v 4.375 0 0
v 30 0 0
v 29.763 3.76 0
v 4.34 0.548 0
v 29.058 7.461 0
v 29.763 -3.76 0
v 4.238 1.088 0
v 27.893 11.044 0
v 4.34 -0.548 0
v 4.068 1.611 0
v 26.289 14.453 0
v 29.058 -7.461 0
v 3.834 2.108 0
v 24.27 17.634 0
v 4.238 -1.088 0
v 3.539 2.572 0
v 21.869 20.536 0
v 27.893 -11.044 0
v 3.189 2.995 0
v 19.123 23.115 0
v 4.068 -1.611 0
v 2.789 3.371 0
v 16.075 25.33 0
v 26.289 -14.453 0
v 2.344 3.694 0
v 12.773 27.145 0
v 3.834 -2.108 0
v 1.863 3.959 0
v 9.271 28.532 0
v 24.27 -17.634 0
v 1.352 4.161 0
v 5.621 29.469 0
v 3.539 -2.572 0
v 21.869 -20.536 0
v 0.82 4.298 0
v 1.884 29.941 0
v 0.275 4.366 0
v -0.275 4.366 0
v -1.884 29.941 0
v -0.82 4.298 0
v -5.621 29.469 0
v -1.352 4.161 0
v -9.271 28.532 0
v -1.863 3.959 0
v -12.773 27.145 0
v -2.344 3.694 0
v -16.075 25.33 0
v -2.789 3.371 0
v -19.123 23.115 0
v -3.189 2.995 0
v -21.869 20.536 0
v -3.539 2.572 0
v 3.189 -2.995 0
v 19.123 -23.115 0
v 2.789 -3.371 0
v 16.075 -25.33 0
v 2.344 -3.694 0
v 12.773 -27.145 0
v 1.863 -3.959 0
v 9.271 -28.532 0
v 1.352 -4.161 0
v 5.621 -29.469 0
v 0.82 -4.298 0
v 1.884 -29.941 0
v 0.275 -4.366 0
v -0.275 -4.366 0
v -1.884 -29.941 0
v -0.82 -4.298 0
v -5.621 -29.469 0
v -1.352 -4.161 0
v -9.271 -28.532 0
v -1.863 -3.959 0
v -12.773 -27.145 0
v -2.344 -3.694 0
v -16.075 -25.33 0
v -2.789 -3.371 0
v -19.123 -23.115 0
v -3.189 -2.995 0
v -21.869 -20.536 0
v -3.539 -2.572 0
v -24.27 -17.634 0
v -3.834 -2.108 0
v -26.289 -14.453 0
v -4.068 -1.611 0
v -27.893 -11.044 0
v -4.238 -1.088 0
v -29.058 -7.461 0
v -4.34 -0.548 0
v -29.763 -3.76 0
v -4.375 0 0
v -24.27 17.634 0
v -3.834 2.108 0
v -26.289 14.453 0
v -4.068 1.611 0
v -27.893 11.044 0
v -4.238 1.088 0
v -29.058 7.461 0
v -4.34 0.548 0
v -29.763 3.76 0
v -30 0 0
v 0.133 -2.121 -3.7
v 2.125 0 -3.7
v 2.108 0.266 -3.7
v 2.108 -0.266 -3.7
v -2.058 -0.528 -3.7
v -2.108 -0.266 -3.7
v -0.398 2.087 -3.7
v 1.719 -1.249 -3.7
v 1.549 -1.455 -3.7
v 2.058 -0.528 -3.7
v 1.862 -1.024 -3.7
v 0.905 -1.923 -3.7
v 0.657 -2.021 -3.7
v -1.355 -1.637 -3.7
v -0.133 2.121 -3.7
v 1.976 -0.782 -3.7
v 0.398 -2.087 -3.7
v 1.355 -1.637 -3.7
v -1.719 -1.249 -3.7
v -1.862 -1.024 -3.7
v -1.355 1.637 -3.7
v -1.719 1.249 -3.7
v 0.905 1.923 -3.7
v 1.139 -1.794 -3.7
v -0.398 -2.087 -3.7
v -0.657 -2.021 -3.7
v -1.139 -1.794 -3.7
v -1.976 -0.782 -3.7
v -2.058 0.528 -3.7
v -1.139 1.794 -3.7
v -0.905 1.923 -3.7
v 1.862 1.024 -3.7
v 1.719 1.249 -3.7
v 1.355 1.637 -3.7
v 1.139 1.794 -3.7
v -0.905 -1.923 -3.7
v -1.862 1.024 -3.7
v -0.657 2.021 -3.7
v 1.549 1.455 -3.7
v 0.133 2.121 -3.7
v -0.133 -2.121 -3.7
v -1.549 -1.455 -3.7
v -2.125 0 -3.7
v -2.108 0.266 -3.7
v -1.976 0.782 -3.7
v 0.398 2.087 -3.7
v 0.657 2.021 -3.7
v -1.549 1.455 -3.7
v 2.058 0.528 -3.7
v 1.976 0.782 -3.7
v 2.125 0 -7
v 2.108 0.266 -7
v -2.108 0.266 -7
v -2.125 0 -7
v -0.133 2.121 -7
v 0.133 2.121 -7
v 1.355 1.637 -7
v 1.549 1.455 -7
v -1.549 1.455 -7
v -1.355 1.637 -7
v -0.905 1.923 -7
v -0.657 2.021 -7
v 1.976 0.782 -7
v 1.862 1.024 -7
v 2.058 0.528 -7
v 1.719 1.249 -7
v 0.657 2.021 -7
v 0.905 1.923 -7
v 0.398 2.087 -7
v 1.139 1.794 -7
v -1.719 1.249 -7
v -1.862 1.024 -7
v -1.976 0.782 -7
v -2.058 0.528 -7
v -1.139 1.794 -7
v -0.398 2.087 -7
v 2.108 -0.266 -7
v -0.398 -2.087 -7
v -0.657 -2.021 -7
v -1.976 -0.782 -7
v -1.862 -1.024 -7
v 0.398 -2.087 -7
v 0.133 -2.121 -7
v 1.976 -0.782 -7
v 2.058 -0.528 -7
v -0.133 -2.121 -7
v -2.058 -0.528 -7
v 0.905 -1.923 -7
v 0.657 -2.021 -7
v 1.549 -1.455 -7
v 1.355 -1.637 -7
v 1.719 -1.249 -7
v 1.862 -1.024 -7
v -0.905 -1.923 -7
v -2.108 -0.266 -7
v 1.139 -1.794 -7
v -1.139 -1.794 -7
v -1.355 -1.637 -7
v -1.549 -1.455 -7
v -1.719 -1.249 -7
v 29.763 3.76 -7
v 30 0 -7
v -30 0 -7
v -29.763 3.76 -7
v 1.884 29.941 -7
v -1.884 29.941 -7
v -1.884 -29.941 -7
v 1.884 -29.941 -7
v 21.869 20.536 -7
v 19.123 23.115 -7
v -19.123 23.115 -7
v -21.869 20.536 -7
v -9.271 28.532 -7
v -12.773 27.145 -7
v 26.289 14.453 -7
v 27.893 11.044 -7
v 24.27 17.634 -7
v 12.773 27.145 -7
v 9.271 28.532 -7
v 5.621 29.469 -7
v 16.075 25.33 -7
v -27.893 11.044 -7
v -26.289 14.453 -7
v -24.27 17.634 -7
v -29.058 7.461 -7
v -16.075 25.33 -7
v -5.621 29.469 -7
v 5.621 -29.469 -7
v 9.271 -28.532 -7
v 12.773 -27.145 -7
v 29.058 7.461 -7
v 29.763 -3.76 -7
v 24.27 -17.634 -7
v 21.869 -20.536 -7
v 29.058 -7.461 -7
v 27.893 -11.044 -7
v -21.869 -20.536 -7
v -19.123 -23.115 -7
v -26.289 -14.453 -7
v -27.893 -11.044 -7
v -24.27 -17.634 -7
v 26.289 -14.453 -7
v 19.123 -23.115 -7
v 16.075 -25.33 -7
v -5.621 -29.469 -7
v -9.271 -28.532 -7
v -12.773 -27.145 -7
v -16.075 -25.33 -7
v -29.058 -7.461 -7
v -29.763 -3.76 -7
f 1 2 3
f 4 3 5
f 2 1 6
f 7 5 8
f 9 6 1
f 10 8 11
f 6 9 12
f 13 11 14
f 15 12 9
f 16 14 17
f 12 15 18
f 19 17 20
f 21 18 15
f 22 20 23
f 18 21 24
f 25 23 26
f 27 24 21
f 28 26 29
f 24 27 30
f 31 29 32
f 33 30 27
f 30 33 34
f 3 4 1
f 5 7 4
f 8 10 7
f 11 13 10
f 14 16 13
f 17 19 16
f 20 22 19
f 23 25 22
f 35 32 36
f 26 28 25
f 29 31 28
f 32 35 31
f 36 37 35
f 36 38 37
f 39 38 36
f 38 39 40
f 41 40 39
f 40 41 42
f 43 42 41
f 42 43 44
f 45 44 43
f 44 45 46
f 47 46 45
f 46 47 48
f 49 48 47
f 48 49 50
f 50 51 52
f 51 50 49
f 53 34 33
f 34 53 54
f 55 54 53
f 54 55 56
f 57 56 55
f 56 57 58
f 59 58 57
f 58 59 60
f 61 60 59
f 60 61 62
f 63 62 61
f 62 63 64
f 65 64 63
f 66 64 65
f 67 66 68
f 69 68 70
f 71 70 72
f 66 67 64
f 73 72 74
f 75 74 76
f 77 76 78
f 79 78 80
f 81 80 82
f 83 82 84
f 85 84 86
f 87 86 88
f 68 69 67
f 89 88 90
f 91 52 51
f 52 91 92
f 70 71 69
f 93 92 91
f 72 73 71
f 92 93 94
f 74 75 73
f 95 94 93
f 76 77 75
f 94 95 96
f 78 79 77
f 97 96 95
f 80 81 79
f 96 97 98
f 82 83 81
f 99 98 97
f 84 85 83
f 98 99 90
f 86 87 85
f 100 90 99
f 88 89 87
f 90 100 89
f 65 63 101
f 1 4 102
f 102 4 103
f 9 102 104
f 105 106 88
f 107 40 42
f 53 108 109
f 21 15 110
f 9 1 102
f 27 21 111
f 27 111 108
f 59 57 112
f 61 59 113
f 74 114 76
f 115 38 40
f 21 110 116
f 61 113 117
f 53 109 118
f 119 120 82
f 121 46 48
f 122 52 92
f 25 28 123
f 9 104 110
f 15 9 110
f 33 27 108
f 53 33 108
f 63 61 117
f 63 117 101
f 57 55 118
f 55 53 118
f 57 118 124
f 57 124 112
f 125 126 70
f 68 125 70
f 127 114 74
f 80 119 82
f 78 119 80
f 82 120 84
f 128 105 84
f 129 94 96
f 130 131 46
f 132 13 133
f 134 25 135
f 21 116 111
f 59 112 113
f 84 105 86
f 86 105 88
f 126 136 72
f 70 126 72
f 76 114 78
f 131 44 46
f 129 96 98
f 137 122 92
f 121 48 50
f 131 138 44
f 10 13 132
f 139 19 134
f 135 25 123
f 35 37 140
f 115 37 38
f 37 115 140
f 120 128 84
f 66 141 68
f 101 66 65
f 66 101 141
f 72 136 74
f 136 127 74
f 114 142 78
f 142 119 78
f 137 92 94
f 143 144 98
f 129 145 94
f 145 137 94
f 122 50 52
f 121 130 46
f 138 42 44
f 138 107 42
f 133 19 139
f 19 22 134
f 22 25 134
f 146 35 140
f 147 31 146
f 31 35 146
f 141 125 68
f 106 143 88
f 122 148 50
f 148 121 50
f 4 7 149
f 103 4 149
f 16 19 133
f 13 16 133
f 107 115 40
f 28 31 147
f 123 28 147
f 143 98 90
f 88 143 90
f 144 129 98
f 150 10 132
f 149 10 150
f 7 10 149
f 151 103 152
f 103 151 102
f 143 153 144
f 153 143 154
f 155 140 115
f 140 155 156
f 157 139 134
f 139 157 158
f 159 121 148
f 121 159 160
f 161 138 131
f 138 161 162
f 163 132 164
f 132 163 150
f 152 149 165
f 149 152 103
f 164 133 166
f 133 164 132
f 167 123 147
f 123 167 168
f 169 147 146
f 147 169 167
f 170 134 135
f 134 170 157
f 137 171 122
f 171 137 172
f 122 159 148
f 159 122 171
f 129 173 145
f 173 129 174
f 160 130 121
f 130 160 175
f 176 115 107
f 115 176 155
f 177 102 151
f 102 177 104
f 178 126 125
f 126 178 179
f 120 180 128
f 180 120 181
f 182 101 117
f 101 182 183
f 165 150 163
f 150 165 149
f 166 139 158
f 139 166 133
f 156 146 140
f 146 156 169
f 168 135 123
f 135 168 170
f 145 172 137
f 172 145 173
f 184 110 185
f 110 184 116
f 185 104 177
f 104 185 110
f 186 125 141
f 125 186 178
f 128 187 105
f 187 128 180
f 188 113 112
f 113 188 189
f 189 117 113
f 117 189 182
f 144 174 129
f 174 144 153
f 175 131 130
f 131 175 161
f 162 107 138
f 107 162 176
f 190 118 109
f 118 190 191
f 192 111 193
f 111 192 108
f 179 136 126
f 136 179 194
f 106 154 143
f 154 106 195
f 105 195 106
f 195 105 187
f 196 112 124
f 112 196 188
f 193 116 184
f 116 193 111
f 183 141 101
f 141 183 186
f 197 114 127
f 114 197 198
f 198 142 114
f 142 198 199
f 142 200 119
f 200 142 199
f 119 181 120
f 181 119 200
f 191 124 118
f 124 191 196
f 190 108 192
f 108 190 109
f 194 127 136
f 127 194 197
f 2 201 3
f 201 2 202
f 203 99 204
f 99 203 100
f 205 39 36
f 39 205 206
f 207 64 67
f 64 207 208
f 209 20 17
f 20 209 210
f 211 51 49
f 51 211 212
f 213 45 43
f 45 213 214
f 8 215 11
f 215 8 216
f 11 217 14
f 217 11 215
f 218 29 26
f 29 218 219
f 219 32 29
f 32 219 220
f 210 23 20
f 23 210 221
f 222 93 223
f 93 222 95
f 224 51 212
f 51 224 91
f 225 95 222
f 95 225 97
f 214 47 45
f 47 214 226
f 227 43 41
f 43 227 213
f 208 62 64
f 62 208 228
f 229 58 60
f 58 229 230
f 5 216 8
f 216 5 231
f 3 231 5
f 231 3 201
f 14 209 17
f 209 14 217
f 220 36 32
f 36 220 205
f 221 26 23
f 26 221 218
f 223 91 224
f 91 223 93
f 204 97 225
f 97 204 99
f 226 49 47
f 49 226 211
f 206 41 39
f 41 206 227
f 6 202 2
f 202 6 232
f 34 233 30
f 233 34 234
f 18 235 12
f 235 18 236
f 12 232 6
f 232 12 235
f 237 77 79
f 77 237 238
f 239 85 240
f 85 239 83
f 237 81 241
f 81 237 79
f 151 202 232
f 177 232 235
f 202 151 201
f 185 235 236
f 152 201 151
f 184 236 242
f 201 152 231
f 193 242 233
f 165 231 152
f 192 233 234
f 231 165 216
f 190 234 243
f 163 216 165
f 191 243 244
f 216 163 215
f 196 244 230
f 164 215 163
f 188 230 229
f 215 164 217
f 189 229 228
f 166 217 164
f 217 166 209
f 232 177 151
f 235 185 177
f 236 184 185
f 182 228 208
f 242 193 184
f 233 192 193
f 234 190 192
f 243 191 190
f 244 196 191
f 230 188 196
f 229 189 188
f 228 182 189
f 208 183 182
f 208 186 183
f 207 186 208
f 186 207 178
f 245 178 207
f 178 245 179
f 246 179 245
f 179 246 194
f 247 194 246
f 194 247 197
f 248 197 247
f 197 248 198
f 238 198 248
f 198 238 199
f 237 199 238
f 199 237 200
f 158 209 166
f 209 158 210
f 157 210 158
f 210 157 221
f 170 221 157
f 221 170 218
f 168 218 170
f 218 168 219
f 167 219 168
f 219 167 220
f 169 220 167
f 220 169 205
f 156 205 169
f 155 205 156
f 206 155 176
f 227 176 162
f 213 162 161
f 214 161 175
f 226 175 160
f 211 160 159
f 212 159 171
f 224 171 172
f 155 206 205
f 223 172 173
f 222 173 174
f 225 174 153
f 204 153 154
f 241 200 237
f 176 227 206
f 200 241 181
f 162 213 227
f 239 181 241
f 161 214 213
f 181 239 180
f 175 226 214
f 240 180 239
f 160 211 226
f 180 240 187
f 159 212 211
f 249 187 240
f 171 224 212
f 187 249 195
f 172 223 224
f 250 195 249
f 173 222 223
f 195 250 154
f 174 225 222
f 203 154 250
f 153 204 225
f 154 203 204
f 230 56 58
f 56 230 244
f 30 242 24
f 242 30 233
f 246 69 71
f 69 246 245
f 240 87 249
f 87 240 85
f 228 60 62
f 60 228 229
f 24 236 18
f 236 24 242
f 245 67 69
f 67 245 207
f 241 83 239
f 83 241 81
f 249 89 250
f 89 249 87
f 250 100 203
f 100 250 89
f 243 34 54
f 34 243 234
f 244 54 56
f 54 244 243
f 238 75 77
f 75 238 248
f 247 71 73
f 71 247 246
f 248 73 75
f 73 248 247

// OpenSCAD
$fn = 50;


difference() {
	union() {
		translate(v = [0, 0, -7.0000000000]) {
			cylinder(h = 7, r = 30.0000000000);
		}
	}
	union() {
		translate(v = [0, 0, 0]) {
			rotate(a = [0, 0, 0]) {
				difference() {
					union() {
						#translate(v = [0, 0, -9.0000000000]) {
							cylinder(h = 9, r = 2.0000000000);
						}
						#translate(v = [0, 0, -3.7000000000]) {
							cylinder(h = 3.7000000000, r1 = 2.1250000000, r2 = 4.3750000000);
						}
						#translate(v = [0, 0, -9.0000000000]) {
							cylinder(h = 9, r = 2.1250000000);
						}
						#translate(v = [0, 0, -9.0000000000]) {
							cylinder(h = 9, r = 2.0000000000);
						}
					}
					union();
				}
			}
		}
	}
}
